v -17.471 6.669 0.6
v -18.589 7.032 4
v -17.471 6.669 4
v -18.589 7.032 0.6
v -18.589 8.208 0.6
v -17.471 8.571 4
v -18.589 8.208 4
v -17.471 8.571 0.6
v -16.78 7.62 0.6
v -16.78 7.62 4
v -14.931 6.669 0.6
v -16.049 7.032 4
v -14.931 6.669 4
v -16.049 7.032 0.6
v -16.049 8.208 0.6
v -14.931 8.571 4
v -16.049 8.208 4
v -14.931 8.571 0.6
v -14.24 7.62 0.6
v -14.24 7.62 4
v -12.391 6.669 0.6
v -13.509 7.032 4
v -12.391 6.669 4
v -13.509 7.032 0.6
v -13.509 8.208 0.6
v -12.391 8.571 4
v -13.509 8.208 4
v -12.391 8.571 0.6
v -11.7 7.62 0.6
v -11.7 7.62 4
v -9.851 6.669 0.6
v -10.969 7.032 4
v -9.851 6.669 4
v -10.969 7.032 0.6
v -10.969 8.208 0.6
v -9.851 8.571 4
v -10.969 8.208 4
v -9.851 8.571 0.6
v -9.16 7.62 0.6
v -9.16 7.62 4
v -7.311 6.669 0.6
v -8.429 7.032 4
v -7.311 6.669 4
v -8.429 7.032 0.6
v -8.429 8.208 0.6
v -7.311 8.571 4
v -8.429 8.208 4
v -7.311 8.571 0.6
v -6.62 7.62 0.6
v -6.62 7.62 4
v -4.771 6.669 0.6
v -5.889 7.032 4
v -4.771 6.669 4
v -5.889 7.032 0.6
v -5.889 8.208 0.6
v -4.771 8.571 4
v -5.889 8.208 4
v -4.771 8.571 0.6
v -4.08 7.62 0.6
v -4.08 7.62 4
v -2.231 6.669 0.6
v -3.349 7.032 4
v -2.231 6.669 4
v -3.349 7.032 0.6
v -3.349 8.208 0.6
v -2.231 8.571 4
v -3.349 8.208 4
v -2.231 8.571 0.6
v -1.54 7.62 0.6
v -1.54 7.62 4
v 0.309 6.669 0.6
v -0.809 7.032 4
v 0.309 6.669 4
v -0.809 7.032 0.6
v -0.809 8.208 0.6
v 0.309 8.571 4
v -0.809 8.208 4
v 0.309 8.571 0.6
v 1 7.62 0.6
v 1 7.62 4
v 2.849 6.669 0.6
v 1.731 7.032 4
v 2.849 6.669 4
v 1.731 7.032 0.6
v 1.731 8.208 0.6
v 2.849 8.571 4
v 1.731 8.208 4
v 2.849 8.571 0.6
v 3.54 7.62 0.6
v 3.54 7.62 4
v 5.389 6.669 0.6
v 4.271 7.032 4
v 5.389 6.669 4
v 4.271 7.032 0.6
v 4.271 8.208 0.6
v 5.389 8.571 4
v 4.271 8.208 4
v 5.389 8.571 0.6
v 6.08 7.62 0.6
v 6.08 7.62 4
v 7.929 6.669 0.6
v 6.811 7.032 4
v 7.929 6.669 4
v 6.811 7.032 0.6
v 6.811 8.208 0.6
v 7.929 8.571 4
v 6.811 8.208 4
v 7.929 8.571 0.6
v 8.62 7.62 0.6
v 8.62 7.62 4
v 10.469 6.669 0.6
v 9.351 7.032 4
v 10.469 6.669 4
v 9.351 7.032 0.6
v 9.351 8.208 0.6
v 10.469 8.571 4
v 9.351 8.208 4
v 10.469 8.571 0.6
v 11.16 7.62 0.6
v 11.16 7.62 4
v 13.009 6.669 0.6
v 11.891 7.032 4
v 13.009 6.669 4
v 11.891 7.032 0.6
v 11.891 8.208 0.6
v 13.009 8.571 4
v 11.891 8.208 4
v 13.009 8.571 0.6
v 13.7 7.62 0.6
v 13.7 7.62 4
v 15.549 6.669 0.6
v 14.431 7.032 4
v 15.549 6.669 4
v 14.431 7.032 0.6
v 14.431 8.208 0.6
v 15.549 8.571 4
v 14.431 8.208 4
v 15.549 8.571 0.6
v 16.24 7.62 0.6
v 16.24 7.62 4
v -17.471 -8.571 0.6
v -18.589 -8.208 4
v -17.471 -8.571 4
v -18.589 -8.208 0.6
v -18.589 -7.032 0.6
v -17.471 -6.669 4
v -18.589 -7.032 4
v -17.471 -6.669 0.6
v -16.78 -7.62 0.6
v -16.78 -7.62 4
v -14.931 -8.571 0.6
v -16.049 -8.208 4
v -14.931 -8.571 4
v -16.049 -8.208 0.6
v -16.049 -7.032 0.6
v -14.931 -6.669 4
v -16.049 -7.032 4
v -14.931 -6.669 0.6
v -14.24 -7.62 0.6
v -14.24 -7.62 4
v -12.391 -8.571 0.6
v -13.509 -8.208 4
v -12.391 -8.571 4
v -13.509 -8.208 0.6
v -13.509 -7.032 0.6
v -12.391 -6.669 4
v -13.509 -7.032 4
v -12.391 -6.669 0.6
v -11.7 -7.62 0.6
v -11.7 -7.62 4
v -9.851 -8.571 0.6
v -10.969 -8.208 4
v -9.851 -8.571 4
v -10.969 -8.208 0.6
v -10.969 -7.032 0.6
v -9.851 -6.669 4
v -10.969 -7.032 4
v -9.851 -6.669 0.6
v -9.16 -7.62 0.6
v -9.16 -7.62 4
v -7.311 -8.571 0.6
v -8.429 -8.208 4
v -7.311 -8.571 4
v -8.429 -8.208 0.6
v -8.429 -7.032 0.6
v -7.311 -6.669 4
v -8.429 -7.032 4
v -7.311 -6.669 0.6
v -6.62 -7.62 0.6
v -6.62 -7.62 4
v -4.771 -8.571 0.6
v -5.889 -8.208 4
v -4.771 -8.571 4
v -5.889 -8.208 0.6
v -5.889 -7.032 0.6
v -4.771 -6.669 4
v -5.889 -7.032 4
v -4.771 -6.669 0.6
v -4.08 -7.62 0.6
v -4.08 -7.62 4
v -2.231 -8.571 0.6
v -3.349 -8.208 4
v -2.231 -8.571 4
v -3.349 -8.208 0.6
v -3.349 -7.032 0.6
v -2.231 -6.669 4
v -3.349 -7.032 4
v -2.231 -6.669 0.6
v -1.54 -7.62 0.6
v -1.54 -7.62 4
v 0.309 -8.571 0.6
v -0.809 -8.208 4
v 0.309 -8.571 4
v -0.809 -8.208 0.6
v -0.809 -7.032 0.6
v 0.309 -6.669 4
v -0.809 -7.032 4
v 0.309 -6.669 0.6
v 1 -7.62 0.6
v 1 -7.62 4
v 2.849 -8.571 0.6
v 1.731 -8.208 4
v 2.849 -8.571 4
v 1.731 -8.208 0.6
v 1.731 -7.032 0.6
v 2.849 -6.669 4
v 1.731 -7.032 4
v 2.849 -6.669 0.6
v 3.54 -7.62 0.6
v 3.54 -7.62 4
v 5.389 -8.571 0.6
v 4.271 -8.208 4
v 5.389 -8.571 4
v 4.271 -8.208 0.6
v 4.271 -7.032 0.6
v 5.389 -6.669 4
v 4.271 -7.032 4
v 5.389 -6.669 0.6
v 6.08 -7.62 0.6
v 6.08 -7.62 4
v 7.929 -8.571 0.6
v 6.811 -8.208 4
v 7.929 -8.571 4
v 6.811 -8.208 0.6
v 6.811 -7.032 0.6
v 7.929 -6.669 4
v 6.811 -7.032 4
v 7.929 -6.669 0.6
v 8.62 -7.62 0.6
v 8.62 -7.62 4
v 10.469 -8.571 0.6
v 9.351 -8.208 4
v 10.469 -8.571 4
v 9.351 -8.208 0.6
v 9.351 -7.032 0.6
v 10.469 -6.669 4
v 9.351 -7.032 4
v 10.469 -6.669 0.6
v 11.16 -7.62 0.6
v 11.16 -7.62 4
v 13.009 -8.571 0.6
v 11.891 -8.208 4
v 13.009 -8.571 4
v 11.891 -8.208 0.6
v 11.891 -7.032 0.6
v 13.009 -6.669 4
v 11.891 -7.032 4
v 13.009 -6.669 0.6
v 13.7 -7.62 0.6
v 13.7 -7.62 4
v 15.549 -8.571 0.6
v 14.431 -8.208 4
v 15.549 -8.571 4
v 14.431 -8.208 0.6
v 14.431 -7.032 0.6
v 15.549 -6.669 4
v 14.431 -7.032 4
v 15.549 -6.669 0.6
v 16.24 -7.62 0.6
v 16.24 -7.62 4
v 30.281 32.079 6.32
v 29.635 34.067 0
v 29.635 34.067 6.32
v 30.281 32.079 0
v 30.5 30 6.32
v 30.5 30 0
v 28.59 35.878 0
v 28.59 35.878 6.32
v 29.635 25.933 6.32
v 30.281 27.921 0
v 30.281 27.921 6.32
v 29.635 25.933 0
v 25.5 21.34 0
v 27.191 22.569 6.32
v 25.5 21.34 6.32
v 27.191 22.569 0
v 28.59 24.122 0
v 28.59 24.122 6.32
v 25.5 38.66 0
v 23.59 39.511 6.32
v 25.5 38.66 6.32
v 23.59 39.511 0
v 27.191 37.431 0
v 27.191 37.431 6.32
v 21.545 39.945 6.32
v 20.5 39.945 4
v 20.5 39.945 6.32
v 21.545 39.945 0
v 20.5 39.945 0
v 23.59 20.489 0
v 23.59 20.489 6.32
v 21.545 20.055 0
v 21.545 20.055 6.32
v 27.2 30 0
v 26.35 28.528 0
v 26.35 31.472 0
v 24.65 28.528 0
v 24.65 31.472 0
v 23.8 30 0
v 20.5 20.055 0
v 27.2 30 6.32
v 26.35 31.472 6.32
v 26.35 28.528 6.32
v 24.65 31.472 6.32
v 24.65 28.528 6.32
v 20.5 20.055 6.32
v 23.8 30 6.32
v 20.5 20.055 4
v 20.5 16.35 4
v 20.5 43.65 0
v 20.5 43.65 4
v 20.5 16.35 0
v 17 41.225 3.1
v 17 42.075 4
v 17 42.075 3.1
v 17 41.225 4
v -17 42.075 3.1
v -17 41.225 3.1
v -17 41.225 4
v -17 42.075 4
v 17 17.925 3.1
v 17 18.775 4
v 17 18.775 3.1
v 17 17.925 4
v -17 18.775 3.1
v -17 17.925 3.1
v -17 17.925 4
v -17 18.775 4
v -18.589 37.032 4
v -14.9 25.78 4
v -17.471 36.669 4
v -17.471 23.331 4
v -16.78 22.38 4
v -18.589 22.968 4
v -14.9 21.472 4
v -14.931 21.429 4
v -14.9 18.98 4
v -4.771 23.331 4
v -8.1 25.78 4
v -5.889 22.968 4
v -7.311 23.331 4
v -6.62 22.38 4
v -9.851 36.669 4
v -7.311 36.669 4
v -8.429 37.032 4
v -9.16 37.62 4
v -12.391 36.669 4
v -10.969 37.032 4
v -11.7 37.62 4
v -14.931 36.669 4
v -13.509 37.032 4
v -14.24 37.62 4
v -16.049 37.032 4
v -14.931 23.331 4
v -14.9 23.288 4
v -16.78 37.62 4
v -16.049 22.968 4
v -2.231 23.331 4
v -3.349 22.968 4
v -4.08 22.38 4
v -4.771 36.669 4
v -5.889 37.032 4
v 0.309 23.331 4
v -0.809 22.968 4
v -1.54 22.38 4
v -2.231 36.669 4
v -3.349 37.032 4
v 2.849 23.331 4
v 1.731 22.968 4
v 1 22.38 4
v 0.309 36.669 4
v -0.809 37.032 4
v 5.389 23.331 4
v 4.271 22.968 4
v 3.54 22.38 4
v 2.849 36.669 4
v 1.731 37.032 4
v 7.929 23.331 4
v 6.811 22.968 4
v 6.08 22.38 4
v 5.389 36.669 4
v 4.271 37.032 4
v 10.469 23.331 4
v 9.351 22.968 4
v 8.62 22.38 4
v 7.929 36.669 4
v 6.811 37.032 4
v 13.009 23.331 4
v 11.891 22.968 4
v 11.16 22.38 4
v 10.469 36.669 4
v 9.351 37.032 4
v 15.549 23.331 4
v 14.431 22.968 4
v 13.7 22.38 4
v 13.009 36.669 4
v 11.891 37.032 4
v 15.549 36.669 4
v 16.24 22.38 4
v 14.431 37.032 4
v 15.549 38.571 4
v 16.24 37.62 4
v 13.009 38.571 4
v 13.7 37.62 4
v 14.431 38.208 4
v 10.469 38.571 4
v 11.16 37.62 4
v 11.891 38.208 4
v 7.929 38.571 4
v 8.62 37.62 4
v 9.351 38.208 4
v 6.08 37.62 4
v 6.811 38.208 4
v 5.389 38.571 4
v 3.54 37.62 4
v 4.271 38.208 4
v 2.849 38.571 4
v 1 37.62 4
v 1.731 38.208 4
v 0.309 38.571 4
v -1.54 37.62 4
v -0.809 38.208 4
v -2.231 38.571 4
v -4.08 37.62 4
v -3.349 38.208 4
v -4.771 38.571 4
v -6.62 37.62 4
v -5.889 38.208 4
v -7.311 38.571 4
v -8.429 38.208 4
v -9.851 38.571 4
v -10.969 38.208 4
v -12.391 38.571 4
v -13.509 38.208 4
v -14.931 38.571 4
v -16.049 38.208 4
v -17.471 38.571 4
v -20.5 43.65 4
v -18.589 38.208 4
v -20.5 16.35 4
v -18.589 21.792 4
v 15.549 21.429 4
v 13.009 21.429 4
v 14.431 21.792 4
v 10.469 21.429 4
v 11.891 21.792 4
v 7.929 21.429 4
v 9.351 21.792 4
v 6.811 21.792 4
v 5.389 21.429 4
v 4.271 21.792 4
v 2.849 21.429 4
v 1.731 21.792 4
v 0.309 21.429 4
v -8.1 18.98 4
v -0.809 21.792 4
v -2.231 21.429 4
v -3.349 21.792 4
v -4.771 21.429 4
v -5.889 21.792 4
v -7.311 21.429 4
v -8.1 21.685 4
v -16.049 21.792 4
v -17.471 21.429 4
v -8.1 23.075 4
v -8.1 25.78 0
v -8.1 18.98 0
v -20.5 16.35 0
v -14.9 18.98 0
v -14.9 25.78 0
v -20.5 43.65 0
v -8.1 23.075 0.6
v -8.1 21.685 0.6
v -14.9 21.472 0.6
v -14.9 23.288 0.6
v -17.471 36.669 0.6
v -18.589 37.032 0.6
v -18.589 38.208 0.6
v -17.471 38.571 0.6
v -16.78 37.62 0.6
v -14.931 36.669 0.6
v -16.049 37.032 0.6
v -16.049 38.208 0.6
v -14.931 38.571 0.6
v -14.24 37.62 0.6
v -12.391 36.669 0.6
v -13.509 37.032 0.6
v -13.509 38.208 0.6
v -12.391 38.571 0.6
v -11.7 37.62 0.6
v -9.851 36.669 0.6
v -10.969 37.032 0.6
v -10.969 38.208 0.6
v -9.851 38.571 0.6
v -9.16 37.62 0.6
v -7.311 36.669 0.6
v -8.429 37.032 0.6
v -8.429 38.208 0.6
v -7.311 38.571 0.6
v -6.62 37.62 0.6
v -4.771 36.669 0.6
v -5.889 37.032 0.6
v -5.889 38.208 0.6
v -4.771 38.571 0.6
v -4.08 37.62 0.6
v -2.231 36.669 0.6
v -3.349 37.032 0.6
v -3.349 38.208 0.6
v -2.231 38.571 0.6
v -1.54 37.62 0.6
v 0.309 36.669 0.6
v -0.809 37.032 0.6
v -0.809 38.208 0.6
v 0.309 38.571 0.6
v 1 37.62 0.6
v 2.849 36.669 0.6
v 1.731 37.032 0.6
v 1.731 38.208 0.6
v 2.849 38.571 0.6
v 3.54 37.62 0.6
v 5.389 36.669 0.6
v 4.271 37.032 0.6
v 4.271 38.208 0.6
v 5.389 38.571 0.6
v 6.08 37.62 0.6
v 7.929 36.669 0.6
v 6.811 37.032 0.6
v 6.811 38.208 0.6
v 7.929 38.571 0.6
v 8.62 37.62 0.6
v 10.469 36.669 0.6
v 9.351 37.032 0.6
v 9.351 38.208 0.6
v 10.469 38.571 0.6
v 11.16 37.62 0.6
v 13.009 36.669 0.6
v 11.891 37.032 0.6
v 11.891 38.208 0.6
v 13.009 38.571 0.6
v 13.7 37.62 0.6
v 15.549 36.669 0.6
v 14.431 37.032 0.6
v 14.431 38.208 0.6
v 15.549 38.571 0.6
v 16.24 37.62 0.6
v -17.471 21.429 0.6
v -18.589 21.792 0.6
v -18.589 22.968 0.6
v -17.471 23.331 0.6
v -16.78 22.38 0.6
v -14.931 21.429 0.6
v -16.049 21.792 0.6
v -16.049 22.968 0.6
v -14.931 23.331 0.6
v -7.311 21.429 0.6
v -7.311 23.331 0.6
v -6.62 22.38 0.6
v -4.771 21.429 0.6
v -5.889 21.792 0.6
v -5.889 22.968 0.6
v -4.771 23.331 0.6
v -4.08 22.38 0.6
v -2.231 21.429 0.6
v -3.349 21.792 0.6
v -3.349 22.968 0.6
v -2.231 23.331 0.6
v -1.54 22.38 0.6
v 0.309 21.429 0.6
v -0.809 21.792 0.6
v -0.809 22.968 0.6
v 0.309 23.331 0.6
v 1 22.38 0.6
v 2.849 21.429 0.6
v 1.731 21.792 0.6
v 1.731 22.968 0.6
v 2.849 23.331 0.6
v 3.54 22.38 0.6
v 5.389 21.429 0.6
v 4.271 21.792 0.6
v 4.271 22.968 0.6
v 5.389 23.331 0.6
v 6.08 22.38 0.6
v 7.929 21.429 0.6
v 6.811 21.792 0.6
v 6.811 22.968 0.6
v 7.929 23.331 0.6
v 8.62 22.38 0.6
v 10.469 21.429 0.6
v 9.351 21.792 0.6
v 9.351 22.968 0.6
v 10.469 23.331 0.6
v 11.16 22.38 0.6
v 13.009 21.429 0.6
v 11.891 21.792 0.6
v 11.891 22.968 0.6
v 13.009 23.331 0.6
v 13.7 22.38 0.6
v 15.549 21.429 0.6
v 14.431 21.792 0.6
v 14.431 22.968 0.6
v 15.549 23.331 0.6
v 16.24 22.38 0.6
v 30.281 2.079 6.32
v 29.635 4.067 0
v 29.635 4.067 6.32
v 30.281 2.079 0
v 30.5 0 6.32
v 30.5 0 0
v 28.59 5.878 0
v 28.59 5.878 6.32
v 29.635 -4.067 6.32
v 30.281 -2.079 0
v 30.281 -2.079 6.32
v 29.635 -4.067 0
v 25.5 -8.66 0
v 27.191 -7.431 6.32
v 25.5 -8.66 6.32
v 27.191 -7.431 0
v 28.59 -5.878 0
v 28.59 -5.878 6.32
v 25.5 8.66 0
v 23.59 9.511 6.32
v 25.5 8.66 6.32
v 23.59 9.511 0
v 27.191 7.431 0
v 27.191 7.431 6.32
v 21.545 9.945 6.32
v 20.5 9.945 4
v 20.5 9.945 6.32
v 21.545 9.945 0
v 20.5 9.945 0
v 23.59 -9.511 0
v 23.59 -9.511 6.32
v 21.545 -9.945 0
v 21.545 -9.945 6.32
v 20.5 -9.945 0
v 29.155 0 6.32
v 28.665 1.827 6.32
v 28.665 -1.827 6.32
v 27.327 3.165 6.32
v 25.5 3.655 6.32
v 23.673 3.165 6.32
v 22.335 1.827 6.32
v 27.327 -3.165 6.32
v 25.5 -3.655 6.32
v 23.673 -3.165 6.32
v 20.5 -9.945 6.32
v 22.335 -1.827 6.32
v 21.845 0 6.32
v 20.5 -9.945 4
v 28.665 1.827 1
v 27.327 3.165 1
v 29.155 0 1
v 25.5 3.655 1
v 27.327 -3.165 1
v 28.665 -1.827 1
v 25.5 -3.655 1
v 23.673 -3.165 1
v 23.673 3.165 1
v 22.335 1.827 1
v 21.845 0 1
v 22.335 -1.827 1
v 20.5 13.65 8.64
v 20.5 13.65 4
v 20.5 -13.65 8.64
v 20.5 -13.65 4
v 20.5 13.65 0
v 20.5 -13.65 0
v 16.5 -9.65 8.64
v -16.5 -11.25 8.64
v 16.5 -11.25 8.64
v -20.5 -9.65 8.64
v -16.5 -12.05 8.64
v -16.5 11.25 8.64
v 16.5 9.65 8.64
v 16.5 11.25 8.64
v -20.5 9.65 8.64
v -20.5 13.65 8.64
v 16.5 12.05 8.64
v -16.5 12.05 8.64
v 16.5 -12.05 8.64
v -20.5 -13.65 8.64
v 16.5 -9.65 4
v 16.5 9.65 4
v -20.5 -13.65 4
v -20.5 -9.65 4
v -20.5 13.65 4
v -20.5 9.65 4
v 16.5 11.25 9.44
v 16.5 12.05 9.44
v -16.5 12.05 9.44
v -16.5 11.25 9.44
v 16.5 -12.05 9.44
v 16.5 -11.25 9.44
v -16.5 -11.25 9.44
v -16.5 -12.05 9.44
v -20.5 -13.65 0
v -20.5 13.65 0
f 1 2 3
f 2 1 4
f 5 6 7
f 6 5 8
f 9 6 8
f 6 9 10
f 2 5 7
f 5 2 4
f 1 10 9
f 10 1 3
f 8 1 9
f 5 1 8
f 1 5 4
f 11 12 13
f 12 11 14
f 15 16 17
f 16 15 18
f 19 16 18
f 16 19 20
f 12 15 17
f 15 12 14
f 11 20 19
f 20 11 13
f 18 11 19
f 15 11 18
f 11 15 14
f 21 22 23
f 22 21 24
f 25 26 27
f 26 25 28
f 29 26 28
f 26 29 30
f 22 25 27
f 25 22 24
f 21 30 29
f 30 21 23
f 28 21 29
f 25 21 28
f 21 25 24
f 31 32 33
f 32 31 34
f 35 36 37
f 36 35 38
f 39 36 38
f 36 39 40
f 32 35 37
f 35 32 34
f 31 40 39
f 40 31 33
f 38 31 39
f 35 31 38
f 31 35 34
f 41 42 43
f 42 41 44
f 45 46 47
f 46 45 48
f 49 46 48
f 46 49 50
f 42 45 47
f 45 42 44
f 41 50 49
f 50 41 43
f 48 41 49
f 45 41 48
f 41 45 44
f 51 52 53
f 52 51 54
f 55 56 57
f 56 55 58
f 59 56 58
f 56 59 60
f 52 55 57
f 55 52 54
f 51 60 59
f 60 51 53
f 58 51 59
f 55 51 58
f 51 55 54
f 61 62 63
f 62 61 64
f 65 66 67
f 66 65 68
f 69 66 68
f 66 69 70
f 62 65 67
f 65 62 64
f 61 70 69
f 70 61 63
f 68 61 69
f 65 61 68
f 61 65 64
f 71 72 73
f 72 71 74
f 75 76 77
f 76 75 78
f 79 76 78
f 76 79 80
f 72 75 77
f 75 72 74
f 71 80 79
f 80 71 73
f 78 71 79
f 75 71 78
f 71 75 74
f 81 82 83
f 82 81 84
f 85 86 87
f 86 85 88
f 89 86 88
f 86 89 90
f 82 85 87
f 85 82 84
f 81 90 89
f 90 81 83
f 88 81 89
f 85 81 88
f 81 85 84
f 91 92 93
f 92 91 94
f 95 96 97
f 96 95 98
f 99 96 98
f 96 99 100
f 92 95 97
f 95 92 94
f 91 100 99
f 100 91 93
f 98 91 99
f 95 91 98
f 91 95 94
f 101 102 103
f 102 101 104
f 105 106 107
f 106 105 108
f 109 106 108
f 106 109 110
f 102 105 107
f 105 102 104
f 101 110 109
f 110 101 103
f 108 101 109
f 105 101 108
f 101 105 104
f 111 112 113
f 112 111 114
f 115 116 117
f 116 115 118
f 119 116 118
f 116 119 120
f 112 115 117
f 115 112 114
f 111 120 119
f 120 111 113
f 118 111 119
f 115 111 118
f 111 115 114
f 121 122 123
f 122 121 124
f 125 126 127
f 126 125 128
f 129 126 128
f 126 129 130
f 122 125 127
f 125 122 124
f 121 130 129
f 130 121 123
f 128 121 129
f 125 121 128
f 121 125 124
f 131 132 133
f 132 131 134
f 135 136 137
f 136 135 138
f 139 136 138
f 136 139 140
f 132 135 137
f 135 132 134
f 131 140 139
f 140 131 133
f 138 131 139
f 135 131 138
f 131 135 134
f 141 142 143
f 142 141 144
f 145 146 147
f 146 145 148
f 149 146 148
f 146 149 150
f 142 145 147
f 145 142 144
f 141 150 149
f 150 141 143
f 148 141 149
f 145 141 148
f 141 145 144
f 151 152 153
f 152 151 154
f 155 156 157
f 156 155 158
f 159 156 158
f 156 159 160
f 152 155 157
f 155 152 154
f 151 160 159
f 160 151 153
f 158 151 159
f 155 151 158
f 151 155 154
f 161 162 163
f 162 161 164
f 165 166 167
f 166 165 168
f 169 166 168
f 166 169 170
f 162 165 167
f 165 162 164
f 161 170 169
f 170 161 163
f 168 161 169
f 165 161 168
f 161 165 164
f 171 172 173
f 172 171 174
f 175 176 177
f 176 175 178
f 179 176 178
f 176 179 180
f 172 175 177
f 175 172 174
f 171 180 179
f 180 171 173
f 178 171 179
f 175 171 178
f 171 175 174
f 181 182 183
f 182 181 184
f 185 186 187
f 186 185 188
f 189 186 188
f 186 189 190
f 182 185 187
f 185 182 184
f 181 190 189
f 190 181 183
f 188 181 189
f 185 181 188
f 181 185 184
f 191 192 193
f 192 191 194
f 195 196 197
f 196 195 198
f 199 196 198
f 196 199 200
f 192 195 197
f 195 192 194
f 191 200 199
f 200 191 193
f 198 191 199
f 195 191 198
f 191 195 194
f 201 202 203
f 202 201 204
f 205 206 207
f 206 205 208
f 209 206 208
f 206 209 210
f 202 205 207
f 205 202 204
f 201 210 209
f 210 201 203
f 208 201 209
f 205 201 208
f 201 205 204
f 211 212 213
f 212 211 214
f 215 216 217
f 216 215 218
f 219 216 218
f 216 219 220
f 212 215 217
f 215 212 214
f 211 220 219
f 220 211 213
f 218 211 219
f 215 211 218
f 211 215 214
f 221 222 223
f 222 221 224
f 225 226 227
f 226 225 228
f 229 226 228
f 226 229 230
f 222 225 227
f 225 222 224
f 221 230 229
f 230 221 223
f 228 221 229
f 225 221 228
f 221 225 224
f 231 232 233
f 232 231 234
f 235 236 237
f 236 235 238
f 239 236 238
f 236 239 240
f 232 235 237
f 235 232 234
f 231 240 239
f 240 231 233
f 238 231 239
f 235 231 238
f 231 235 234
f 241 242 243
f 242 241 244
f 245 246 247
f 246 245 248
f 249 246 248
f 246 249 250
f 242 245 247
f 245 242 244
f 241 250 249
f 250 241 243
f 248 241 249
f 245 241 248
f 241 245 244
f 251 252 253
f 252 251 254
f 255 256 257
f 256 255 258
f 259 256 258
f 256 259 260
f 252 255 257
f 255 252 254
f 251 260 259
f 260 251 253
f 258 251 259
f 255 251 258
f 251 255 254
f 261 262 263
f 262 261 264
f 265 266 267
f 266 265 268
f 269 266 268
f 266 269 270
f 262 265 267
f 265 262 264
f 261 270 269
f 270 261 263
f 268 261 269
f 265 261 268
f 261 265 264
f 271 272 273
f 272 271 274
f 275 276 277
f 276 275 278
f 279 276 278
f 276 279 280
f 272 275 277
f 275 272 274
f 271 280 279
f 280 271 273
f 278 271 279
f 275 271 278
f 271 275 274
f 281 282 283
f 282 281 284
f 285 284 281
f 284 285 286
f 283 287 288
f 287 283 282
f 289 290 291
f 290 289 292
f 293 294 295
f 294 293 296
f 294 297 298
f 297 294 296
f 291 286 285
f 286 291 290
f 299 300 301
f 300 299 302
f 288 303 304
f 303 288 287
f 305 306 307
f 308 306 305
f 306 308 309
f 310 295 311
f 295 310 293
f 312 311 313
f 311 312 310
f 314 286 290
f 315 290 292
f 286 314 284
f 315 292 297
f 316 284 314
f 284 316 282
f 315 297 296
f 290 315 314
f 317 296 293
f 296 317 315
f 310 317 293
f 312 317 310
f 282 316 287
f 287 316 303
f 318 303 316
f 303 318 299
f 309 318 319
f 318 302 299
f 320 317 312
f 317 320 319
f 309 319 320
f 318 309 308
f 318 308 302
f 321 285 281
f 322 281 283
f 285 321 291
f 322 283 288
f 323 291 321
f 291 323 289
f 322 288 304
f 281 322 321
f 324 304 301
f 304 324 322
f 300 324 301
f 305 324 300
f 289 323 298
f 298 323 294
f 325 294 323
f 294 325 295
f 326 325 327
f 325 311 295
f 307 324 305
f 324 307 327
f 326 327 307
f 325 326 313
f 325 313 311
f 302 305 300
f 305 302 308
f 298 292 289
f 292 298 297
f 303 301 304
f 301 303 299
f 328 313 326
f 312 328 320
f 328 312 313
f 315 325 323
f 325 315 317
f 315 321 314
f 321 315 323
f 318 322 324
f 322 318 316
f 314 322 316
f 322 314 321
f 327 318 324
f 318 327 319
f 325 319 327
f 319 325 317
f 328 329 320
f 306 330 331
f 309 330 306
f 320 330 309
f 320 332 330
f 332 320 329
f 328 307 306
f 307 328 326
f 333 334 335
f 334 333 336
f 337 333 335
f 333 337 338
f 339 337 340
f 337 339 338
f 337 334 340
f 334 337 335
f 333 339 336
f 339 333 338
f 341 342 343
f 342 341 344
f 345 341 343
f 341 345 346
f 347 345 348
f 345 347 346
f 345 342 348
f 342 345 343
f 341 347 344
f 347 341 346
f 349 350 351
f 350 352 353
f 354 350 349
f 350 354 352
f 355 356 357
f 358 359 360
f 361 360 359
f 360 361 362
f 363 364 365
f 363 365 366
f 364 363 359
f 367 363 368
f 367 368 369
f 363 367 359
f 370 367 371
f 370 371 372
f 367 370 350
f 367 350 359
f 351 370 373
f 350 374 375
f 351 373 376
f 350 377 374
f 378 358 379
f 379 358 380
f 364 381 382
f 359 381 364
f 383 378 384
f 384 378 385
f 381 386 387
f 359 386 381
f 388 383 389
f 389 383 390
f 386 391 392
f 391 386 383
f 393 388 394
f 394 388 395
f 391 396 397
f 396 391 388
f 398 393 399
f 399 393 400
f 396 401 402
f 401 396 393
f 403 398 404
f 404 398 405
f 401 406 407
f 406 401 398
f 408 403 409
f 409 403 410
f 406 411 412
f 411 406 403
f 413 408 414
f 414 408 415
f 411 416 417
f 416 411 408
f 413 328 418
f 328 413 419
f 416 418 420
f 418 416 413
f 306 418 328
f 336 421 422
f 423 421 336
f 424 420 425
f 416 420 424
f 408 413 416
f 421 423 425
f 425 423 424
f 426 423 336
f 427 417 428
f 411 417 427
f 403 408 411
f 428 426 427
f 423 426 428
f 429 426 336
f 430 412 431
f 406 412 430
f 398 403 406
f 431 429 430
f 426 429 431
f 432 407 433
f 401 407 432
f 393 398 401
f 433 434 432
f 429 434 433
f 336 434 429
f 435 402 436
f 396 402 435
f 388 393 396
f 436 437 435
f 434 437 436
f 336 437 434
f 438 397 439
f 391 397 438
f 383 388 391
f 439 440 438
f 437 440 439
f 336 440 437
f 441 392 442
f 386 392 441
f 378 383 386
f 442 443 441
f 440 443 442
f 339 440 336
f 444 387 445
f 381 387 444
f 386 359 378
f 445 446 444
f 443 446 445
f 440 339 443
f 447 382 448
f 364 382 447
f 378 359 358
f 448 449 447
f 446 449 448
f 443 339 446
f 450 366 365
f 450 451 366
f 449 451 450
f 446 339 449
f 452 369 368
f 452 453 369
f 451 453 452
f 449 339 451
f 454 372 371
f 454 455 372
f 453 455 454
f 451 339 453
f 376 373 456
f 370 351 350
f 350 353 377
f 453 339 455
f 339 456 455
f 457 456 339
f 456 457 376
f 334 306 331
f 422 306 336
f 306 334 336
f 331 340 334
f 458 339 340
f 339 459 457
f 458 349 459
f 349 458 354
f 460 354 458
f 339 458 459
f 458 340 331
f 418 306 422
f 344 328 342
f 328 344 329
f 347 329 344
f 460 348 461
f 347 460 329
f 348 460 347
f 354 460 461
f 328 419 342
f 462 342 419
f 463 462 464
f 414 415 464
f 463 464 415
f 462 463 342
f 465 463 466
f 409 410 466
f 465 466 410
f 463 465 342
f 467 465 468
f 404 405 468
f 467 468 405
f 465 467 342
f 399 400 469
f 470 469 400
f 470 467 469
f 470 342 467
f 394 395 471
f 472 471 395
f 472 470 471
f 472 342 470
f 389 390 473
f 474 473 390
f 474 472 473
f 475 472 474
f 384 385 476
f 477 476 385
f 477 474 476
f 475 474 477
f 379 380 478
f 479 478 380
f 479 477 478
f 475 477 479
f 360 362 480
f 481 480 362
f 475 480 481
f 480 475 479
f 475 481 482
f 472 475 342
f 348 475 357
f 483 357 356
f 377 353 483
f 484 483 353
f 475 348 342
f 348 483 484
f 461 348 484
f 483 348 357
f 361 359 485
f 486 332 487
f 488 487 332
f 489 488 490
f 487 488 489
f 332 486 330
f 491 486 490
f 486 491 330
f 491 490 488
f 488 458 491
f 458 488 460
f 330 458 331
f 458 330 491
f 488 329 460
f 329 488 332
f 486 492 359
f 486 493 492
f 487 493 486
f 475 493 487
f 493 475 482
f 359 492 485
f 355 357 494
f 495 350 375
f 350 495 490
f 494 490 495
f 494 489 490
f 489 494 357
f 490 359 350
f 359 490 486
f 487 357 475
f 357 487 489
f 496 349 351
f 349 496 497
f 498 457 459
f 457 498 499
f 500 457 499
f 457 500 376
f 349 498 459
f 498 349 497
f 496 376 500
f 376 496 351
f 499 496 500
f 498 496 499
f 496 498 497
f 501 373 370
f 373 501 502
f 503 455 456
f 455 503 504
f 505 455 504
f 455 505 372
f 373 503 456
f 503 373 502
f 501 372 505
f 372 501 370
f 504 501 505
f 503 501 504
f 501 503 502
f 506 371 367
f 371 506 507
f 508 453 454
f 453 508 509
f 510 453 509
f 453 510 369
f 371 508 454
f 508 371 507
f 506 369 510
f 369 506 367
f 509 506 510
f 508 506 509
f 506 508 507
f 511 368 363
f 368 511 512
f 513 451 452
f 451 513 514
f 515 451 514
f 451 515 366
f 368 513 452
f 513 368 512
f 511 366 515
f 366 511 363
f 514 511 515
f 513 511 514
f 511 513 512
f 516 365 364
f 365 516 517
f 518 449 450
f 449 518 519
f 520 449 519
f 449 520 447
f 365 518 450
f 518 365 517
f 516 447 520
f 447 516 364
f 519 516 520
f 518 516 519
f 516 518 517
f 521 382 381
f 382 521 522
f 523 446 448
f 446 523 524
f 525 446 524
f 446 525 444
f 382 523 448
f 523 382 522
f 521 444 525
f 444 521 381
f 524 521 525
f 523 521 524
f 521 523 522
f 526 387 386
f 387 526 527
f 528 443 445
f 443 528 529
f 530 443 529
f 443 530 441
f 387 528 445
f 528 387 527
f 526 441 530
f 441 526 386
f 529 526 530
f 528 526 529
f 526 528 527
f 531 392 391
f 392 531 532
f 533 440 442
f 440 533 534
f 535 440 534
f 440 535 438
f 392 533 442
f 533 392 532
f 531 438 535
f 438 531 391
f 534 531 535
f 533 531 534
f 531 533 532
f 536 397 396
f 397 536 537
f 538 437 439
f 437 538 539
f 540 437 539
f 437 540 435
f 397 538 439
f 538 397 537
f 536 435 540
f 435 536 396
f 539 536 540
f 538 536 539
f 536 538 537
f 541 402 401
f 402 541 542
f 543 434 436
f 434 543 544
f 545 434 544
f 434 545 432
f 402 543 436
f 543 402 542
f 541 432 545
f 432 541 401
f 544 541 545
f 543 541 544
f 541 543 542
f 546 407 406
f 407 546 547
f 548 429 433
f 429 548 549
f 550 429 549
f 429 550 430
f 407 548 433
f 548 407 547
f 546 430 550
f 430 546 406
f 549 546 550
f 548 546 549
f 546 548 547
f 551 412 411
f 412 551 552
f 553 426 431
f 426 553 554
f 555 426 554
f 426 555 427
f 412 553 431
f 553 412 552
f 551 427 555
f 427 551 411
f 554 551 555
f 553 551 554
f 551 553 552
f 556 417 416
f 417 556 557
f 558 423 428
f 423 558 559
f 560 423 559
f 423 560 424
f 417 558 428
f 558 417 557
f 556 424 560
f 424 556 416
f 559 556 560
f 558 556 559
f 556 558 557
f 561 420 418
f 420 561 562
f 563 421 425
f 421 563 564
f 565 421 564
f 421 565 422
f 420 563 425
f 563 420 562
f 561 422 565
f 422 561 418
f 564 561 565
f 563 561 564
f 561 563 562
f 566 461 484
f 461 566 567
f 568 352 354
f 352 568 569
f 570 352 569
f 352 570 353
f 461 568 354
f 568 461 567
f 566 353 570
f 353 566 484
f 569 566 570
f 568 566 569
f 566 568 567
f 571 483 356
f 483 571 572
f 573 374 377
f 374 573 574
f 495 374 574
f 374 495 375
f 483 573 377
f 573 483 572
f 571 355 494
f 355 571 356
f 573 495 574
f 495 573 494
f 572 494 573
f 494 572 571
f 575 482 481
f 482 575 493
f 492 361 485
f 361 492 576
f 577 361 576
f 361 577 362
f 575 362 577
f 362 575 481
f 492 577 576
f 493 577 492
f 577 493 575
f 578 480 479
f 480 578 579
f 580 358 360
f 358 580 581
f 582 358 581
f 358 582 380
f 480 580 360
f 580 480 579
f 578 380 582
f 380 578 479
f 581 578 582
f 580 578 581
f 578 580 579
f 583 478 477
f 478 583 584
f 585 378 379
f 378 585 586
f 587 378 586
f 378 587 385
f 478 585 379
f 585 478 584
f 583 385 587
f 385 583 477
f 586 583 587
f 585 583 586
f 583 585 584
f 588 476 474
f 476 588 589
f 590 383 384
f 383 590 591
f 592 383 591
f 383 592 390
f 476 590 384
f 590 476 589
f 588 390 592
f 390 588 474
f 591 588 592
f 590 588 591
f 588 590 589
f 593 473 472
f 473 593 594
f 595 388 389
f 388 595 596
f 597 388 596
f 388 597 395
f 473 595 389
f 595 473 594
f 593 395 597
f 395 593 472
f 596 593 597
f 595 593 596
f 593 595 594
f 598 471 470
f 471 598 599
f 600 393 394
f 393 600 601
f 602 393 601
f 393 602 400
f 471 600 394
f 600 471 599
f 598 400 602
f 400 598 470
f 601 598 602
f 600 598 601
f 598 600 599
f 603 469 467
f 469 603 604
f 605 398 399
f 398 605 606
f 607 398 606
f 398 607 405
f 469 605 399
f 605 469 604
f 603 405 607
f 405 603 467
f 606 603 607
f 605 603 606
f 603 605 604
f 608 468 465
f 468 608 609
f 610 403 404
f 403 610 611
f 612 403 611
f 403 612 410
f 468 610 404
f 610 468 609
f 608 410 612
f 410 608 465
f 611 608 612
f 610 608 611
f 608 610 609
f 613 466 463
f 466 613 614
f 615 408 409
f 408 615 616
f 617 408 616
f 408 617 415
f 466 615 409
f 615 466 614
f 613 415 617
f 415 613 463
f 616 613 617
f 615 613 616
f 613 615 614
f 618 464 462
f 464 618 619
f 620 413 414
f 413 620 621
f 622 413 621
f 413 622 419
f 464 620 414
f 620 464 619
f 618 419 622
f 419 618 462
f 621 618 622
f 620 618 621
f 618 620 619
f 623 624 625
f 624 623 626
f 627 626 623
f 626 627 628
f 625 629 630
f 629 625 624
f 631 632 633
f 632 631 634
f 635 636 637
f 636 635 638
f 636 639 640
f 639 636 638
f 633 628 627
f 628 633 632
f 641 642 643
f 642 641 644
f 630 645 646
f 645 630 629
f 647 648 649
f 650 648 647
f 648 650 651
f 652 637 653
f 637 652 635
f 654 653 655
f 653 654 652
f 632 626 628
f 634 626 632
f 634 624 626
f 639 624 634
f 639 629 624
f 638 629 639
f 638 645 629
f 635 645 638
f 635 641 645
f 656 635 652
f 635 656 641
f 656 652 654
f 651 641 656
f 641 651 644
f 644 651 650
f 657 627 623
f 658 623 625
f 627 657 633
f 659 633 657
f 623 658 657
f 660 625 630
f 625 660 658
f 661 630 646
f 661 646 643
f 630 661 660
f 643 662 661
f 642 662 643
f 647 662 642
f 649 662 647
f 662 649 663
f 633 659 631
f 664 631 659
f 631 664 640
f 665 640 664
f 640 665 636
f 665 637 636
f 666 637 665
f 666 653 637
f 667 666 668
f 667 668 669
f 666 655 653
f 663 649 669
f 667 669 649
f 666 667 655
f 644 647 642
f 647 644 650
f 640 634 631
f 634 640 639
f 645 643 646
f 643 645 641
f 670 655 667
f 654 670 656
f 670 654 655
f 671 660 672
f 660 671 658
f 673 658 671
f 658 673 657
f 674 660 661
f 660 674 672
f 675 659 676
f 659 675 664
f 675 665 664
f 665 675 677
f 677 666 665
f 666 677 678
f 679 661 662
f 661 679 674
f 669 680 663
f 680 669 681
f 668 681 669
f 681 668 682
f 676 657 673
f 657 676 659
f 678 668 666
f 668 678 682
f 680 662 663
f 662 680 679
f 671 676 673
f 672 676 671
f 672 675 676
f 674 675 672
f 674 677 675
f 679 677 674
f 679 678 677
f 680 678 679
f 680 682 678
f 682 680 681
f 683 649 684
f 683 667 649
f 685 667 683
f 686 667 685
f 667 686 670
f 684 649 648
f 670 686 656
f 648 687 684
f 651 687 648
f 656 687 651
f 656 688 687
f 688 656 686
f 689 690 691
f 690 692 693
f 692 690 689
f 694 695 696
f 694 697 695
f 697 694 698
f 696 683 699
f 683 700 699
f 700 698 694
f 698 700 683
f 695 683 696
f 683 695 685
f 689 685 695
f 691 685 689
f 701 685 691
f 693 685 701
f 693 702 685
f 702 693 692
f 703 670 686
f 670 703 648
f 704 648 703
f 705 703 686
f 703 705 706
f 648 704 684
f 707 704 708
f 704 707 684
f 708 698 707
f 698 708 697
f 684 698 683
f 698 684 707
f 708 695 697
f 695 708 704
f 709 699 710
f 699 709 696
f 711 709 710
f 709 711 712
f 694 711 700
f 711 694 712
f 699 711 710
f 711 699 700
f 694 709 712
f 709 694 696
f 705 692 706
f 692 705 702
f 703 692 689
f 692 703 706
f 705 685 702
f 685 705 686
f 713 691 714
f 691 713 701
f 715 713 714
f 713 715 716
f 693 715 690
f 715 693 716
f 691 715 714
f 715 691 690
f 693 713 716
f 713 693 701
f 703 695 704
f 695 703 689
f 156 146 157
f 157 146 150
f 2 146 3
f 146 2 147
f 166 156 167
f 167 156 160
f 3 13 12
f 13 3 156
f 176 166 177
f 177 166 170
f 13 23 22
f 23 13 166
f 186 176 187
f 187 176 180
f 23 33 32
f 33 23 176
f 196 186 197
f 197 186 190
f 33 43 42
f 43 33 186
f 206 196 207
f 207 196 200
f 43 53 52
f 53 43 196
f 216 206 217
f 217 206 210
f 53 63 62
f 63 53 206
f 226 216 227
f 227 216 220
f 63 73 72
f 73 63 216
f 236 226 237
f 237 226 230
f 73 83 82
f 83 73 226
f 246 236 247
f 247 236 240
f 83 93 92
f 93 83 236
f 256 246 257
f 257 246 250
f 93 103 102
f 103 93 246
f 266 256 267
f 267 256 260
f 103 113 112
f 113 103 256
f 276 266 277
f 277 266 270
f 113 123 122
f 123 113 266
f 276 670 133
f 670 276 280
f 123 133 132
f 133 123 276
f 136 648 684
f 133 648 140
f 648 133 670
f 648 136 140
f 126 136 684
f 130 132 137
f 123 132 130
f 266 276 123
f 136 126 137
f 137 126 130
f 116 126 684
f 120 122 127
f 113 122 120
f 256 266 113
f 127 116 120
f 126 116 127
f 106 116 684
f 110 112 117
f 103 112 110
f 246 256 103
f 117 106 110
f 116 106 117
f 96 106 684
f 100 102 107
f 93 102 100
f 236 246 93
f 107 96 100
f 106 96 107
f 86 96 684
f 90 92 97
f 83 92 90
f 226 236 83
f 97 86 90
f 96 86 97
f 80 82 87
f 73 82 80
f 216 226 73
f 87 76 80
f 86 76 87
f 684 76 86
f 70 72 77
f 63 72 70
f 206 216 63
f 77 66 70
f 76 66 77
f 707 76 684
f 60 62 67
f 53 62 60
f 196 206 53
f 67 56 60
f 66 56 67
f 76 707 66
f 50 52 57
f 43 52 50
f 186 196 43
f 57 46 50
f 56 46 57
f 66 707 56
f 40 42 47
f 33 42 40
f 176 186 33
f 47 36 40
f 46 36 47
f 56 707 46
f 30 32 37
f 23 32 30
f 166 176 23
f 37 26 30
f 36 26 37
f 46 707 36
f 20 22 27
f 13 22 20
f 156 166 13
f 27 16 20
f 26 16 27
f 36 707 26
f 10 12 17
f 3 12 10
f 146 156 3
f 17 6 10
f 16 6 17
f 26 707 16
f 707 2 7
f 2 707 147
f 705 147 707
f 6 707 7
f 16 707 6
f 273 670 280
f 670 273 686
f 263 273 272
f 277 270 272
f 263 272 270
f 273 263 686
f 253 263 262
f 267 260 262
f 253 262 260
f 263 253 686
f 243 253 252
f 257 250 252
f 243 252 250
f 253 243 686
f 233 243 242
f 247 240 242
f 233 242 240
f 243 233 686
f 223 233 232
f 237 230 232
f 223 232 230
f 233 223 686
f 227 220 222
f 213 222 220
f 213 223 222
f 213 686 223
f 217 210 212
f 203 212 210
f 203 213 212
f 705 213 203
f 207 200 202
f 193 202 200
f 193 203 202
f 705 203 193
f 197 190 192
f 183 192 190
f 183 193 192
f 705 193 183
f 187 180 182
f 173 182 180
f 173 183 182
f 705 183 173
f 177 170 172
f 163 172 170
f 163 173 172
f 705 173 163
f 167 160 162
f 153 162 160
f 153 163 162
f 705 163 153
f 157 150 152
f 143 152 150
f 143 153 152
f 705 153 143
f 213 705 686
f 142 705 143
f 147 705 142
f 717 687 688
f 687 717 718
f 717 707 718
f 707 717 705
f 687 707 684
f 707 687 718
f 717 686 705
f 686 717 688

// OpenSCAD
union () {
  translate ([0, 30, 0]) {
    union () {
      translate ([0, 0, 3.16]) {
        translate ([41/2, 0, 0]) {
          difference () {
            union () {
              cylinder (h=6.32, r=10, center=true);
            }
            translate ([5, 0, 0]) {
              cylinder (h=100, r=1.7, center=true);
            }
            translate ([-50, 0, 0]) {
              cube ([100, 100, 100], center=true);
            }
          }
        }
      }
      difference () {
        translate ([0, 0, 2]) {
          difference () {
            cube ([41, 27.3, 4], center=true);
            translate ([0, 0, 1.2]) {
              union () {
                translate ([0, 11.65, 0.4]) {
                  cube ([34, 0.8500000000000001, 1.0], center=true);
                }
                translate ([0, -11.65, 0.4]) {
                  cube ([34, 0.8500000000000001, 1.0], center=true);
                }
              }
            }
            translate ([-11.5, -7.62, 0]) {
              cube ([6.8, 6.8, 10], center=true);
            }
          }
        }
        translate ([0, 0, 2.3025]) {
          union () {
            translate ([0, 7.62, 0]) {
              union () {
                translate ([-17.78, 0, 0]) {
                  cylinder (h=3.4049999999999994, r=1, center=true);
                }
                translate ([-15.24, 0, 0]) {
                  cylinder (h=3.4049999999999994, r=1, center=true);
                }
                translate ([-12.7, 0, 0]) {
                  cylinder (h=3.4049999999999994, r=1, center=true);
                }
                translate ([-10.16, 0, 0]) {
                  cylinder (h=3.4049999999999994, r=1, center=true);
                }
                translate ([-7.62, 0, 0]) {
                  cylinder (h=3.4049999999999994, r=1, center=true);
                }
                translate ([-5.08, 0, 0]) {
                  cylinder (h=3.4049999999999994, r=1, center=true);
                }
                translate ([-2.54, 0, 0]) {
                  cylinder (h=3.4049999999999994, r=1, center=true);
                }
                translate ([0.0, 0, 0]) {
                  cylinder (h=3.4049999999999994, r=1, center=true);
                }
                translate ([2.54, 0, 0]) {
                  cylinder (h=3.4049999999999994, r=1, center=true);
                }
                translate ([5.08, 0, 0]) {
                  cylinder (h=3.4049999999999994, r=1, center=true);
                }
                translate ([7.62, 0, 0]) {
                  cylinder (h=3.4049999999999994, r=1, center=true);
                }
                translate ([10.16, 0, 0]) {
                  cylinder (h=3.4049999999999994, r=1, center=true);
                }
                translate ([12.7, 0, 0]) {
                  cylinder (h=3.4049999999999994, r=1, center=true);
                }
                translate ([15.24, 0, 0]) {
                  cylinder (h=3.4049999999999994, r=1, center=true);
                }
              }
            }
            translate ([0, -7.62, 0]) {
              union () {
                translate ([-17.78, 0, 0]) {
                  cylinder (h=3.4049999999999994, r=1, center=true);
                }
                translate ([-15.24, 0, 0]) {
                  cylinder (h=3.4049999999999994, r=1, center=true);
                }
                translate ([-12.7, 0, 0]) {
                  cylinder (h=3.4049999999999994, r=1, center=true);
                }
                translate ([-10.16, 0, 0]) {
                  cylinder (h=3.4049999999999994, r=1, center=true);
                }
                translate ([-7.62, 0, 0]) {
                  cylinder (h=3.4049999999999994, r=1, center=true);
                }
                translate ([-5.08, 0, 0]) {
                  cylinder (h=3.4049999999999994, r=1, center=true);
                }
                translate ([-2.54, 0, 0]) {
                  cylinder (h=3.4049999999999994, r=1, center=true);
                }
                translate ([0.0, 0, 0]) {
                  cylinder (h=3.4049999999999994, r=1, center=true);
                }
                translate ([2.54, 0, 0]) {
                  cylinder (h=3.4049999999999994, r=1, center=true);
                }
                translate ([5.08, 0, 0]) {
                  cylinder (h=3.4049999999999994, r=1, center=true);
                }
                translate ([7.62, 0, 0]) {
                  cylinder (h=3.4049999999999994, r=1, center=true);
                }
                translate ([10.16, 0, 0]) {
                  cylinder (h=3.4049999999999994, r=1, center=true);
                }
                translate ([12.7, 0, 0]) {
                  cylinder (h=3.4049999999999994, r=1, center=true);
                }
                translate ([15.24, 0, 0]) {
                  cylinder (h=3.4049999999999994, r=1, center=true);
                }
              }
            }
          }
        }
      }
    }
  }
  union () {
    translate ([0, 0, 3.16]) {
      translate ([41/2, 0, 0]) {
        difference () {
          union () {
            cylinder (h=6.32, r=10, center=true);
          }
          translate ([5, 0, 1]) {
            cylinder (h=6.32, r=3.655, center=true);
          }
          translate ([-50, 0, 0]) {
            cube ([100, 100, 100], center=true);
          }
        }
      }
    }
    translate ([0, 0, 6.32]) {
      union () {
        translate ([0, 11.65, 0]) {
          cube ([41, 4, 4.640000000000001], center=true);
        }
        translate ([0, 11.65, 2.72]) {
          cube ([33, 0.8, 0.8], center=true);
        }
        translate ([0, -11.65, 0]) {
          cube ([41, 4, 4.640000000000001], center=true);
        }
        translate ([0, -11.65, 2.72]) {
          cube ([33, 0.8, 0.8], center=true);
        }
        translate ([37/2, 0, 0]) {
          cube ([4, 27.3, 4.640000000000001], center=true);
        }
      }
    }
    difference () {
      translate ([0, 0, 2]) {
        cube ([41, 27.3, 4], center=true);
      }
      translate ([0, 0, 2.3025]) {
        union () {
          translate ([0, 7.62, 0]) {
            union () {
              translate ([-17.78, 0, 0]) {
                cylinder (h=3.4049999999999994, r=1, center=true);
              }
              translate ([-15.24, 0, 0]) {
                cylinder (h=3.4049999999999994, r=1, center=true);
              }
              translate ([-12.7, 0, 0]) {
                cylinder (h=3.4049999999999994, r=1, center=true);
              }
              translate ([-10.16, 0, 0]) {
                cylinder (h=3.4049999999999994, r=1, center=true);
              }
              translate ([-7.62, 0, 0]) {
                cylinder (h=3.4049999999999994, r=1, center=true);
              }
              translate ([-5.08, 0, 0]) {
                cylinder (h=3.4049999999999994, r=1, center=true);
              }
              translate ([-2.54, 0, 0]) {
                cylinder (h=3.4049999999999994, r=1, center=true);
              }
              translate ([0.0, 0, 0]) {
                cylinder (h=3.4049999999999994, r=1, center=true);
              }
              translate ([2.54, 0, 0]) {
                cylinder (h=3.4049999999999994, r=1, center=true);
              }
              translate ([5.08, 0, 0]) {
                cylinder (h=3.4049999999999994, r=1, center=true);
              }
              translate ([7.62, 0, 0]) {
                cylinder (h=3.4049999999999994, r=1, center=true);
              }
              translate ([10.16, 0, 0]) {
                cylinder (h=3.4049999999999994, r=1, center=true);
              }
              translate ([12.7, 0, 0]) {
                cylinder (h=3.4049999999999994, r=1, center=true);
              }
              translate ([15.24, 0, 0]) {
                cylinder (h=3.4049999999999994, r=1, center=true);
              }
            }
          }
          translate ([0, -7.62, 0]) {
            union () {
              translate ([-17.78, 0, 0]) {
                cylinder (h=3.4049999999999994, r=1, center=true);
              }
              translate ([-15.24, 0, 0]) {
                cylinder (h=3.4049999999999994, r=1, center=true);
              }
              translate ([-12.7, 0, 0]) {
                cylinder (h=3.4049999999999994, r=1, center=true);
              }
              translate ([-10.16, 0, 0]) {
                cylinder (h=3.4049999999999994, r=1, center=true);
              }
              translate ([-7.62, 0, 0]) {
                cylinder (h=3.4049999999999994, r=1, center=true);
              }
              translate ([-5.08, 0, 0]) {
                cylinder (h=3.4049999999999994, r=1, center=true);
              }
              translate ([-2.54, 0, 0]) {
                cylinder (h=3.4049999999999994, r=1, center=true);
              }
              translate ([0.0, 0, 0]) {
                cylinder (h=3.4049999999999994, r=1, center=true);
              }
              translate ([2.54, 0, 0]) {
                cylinder (h=3.4049999999999994, r=1, center=true);
              }
              translate ([5.08, 0, 0]) {
                cylinder (h=3.4049999999999994, r=1, center=true);
              }
              translate ([7.62, 0, 0]) {
                cylinder (h=3.4049999999999994, r=1, center=true);
              }
              translate ([10.16, 0, 0]) {
                cylinder (h=3.4049999999999994, r=1, center=true);
              }
              translate ([12.7, 0, 0]) {
                cylinder (h=3.4049999999999994, r=1, center=true);
              }
              translate ([15.24, 0, 0]) {
                cylinder (h=3.4049999999999994, r=1, center=true);
              }
            }
          }
        }
      }
    }
  }
}
